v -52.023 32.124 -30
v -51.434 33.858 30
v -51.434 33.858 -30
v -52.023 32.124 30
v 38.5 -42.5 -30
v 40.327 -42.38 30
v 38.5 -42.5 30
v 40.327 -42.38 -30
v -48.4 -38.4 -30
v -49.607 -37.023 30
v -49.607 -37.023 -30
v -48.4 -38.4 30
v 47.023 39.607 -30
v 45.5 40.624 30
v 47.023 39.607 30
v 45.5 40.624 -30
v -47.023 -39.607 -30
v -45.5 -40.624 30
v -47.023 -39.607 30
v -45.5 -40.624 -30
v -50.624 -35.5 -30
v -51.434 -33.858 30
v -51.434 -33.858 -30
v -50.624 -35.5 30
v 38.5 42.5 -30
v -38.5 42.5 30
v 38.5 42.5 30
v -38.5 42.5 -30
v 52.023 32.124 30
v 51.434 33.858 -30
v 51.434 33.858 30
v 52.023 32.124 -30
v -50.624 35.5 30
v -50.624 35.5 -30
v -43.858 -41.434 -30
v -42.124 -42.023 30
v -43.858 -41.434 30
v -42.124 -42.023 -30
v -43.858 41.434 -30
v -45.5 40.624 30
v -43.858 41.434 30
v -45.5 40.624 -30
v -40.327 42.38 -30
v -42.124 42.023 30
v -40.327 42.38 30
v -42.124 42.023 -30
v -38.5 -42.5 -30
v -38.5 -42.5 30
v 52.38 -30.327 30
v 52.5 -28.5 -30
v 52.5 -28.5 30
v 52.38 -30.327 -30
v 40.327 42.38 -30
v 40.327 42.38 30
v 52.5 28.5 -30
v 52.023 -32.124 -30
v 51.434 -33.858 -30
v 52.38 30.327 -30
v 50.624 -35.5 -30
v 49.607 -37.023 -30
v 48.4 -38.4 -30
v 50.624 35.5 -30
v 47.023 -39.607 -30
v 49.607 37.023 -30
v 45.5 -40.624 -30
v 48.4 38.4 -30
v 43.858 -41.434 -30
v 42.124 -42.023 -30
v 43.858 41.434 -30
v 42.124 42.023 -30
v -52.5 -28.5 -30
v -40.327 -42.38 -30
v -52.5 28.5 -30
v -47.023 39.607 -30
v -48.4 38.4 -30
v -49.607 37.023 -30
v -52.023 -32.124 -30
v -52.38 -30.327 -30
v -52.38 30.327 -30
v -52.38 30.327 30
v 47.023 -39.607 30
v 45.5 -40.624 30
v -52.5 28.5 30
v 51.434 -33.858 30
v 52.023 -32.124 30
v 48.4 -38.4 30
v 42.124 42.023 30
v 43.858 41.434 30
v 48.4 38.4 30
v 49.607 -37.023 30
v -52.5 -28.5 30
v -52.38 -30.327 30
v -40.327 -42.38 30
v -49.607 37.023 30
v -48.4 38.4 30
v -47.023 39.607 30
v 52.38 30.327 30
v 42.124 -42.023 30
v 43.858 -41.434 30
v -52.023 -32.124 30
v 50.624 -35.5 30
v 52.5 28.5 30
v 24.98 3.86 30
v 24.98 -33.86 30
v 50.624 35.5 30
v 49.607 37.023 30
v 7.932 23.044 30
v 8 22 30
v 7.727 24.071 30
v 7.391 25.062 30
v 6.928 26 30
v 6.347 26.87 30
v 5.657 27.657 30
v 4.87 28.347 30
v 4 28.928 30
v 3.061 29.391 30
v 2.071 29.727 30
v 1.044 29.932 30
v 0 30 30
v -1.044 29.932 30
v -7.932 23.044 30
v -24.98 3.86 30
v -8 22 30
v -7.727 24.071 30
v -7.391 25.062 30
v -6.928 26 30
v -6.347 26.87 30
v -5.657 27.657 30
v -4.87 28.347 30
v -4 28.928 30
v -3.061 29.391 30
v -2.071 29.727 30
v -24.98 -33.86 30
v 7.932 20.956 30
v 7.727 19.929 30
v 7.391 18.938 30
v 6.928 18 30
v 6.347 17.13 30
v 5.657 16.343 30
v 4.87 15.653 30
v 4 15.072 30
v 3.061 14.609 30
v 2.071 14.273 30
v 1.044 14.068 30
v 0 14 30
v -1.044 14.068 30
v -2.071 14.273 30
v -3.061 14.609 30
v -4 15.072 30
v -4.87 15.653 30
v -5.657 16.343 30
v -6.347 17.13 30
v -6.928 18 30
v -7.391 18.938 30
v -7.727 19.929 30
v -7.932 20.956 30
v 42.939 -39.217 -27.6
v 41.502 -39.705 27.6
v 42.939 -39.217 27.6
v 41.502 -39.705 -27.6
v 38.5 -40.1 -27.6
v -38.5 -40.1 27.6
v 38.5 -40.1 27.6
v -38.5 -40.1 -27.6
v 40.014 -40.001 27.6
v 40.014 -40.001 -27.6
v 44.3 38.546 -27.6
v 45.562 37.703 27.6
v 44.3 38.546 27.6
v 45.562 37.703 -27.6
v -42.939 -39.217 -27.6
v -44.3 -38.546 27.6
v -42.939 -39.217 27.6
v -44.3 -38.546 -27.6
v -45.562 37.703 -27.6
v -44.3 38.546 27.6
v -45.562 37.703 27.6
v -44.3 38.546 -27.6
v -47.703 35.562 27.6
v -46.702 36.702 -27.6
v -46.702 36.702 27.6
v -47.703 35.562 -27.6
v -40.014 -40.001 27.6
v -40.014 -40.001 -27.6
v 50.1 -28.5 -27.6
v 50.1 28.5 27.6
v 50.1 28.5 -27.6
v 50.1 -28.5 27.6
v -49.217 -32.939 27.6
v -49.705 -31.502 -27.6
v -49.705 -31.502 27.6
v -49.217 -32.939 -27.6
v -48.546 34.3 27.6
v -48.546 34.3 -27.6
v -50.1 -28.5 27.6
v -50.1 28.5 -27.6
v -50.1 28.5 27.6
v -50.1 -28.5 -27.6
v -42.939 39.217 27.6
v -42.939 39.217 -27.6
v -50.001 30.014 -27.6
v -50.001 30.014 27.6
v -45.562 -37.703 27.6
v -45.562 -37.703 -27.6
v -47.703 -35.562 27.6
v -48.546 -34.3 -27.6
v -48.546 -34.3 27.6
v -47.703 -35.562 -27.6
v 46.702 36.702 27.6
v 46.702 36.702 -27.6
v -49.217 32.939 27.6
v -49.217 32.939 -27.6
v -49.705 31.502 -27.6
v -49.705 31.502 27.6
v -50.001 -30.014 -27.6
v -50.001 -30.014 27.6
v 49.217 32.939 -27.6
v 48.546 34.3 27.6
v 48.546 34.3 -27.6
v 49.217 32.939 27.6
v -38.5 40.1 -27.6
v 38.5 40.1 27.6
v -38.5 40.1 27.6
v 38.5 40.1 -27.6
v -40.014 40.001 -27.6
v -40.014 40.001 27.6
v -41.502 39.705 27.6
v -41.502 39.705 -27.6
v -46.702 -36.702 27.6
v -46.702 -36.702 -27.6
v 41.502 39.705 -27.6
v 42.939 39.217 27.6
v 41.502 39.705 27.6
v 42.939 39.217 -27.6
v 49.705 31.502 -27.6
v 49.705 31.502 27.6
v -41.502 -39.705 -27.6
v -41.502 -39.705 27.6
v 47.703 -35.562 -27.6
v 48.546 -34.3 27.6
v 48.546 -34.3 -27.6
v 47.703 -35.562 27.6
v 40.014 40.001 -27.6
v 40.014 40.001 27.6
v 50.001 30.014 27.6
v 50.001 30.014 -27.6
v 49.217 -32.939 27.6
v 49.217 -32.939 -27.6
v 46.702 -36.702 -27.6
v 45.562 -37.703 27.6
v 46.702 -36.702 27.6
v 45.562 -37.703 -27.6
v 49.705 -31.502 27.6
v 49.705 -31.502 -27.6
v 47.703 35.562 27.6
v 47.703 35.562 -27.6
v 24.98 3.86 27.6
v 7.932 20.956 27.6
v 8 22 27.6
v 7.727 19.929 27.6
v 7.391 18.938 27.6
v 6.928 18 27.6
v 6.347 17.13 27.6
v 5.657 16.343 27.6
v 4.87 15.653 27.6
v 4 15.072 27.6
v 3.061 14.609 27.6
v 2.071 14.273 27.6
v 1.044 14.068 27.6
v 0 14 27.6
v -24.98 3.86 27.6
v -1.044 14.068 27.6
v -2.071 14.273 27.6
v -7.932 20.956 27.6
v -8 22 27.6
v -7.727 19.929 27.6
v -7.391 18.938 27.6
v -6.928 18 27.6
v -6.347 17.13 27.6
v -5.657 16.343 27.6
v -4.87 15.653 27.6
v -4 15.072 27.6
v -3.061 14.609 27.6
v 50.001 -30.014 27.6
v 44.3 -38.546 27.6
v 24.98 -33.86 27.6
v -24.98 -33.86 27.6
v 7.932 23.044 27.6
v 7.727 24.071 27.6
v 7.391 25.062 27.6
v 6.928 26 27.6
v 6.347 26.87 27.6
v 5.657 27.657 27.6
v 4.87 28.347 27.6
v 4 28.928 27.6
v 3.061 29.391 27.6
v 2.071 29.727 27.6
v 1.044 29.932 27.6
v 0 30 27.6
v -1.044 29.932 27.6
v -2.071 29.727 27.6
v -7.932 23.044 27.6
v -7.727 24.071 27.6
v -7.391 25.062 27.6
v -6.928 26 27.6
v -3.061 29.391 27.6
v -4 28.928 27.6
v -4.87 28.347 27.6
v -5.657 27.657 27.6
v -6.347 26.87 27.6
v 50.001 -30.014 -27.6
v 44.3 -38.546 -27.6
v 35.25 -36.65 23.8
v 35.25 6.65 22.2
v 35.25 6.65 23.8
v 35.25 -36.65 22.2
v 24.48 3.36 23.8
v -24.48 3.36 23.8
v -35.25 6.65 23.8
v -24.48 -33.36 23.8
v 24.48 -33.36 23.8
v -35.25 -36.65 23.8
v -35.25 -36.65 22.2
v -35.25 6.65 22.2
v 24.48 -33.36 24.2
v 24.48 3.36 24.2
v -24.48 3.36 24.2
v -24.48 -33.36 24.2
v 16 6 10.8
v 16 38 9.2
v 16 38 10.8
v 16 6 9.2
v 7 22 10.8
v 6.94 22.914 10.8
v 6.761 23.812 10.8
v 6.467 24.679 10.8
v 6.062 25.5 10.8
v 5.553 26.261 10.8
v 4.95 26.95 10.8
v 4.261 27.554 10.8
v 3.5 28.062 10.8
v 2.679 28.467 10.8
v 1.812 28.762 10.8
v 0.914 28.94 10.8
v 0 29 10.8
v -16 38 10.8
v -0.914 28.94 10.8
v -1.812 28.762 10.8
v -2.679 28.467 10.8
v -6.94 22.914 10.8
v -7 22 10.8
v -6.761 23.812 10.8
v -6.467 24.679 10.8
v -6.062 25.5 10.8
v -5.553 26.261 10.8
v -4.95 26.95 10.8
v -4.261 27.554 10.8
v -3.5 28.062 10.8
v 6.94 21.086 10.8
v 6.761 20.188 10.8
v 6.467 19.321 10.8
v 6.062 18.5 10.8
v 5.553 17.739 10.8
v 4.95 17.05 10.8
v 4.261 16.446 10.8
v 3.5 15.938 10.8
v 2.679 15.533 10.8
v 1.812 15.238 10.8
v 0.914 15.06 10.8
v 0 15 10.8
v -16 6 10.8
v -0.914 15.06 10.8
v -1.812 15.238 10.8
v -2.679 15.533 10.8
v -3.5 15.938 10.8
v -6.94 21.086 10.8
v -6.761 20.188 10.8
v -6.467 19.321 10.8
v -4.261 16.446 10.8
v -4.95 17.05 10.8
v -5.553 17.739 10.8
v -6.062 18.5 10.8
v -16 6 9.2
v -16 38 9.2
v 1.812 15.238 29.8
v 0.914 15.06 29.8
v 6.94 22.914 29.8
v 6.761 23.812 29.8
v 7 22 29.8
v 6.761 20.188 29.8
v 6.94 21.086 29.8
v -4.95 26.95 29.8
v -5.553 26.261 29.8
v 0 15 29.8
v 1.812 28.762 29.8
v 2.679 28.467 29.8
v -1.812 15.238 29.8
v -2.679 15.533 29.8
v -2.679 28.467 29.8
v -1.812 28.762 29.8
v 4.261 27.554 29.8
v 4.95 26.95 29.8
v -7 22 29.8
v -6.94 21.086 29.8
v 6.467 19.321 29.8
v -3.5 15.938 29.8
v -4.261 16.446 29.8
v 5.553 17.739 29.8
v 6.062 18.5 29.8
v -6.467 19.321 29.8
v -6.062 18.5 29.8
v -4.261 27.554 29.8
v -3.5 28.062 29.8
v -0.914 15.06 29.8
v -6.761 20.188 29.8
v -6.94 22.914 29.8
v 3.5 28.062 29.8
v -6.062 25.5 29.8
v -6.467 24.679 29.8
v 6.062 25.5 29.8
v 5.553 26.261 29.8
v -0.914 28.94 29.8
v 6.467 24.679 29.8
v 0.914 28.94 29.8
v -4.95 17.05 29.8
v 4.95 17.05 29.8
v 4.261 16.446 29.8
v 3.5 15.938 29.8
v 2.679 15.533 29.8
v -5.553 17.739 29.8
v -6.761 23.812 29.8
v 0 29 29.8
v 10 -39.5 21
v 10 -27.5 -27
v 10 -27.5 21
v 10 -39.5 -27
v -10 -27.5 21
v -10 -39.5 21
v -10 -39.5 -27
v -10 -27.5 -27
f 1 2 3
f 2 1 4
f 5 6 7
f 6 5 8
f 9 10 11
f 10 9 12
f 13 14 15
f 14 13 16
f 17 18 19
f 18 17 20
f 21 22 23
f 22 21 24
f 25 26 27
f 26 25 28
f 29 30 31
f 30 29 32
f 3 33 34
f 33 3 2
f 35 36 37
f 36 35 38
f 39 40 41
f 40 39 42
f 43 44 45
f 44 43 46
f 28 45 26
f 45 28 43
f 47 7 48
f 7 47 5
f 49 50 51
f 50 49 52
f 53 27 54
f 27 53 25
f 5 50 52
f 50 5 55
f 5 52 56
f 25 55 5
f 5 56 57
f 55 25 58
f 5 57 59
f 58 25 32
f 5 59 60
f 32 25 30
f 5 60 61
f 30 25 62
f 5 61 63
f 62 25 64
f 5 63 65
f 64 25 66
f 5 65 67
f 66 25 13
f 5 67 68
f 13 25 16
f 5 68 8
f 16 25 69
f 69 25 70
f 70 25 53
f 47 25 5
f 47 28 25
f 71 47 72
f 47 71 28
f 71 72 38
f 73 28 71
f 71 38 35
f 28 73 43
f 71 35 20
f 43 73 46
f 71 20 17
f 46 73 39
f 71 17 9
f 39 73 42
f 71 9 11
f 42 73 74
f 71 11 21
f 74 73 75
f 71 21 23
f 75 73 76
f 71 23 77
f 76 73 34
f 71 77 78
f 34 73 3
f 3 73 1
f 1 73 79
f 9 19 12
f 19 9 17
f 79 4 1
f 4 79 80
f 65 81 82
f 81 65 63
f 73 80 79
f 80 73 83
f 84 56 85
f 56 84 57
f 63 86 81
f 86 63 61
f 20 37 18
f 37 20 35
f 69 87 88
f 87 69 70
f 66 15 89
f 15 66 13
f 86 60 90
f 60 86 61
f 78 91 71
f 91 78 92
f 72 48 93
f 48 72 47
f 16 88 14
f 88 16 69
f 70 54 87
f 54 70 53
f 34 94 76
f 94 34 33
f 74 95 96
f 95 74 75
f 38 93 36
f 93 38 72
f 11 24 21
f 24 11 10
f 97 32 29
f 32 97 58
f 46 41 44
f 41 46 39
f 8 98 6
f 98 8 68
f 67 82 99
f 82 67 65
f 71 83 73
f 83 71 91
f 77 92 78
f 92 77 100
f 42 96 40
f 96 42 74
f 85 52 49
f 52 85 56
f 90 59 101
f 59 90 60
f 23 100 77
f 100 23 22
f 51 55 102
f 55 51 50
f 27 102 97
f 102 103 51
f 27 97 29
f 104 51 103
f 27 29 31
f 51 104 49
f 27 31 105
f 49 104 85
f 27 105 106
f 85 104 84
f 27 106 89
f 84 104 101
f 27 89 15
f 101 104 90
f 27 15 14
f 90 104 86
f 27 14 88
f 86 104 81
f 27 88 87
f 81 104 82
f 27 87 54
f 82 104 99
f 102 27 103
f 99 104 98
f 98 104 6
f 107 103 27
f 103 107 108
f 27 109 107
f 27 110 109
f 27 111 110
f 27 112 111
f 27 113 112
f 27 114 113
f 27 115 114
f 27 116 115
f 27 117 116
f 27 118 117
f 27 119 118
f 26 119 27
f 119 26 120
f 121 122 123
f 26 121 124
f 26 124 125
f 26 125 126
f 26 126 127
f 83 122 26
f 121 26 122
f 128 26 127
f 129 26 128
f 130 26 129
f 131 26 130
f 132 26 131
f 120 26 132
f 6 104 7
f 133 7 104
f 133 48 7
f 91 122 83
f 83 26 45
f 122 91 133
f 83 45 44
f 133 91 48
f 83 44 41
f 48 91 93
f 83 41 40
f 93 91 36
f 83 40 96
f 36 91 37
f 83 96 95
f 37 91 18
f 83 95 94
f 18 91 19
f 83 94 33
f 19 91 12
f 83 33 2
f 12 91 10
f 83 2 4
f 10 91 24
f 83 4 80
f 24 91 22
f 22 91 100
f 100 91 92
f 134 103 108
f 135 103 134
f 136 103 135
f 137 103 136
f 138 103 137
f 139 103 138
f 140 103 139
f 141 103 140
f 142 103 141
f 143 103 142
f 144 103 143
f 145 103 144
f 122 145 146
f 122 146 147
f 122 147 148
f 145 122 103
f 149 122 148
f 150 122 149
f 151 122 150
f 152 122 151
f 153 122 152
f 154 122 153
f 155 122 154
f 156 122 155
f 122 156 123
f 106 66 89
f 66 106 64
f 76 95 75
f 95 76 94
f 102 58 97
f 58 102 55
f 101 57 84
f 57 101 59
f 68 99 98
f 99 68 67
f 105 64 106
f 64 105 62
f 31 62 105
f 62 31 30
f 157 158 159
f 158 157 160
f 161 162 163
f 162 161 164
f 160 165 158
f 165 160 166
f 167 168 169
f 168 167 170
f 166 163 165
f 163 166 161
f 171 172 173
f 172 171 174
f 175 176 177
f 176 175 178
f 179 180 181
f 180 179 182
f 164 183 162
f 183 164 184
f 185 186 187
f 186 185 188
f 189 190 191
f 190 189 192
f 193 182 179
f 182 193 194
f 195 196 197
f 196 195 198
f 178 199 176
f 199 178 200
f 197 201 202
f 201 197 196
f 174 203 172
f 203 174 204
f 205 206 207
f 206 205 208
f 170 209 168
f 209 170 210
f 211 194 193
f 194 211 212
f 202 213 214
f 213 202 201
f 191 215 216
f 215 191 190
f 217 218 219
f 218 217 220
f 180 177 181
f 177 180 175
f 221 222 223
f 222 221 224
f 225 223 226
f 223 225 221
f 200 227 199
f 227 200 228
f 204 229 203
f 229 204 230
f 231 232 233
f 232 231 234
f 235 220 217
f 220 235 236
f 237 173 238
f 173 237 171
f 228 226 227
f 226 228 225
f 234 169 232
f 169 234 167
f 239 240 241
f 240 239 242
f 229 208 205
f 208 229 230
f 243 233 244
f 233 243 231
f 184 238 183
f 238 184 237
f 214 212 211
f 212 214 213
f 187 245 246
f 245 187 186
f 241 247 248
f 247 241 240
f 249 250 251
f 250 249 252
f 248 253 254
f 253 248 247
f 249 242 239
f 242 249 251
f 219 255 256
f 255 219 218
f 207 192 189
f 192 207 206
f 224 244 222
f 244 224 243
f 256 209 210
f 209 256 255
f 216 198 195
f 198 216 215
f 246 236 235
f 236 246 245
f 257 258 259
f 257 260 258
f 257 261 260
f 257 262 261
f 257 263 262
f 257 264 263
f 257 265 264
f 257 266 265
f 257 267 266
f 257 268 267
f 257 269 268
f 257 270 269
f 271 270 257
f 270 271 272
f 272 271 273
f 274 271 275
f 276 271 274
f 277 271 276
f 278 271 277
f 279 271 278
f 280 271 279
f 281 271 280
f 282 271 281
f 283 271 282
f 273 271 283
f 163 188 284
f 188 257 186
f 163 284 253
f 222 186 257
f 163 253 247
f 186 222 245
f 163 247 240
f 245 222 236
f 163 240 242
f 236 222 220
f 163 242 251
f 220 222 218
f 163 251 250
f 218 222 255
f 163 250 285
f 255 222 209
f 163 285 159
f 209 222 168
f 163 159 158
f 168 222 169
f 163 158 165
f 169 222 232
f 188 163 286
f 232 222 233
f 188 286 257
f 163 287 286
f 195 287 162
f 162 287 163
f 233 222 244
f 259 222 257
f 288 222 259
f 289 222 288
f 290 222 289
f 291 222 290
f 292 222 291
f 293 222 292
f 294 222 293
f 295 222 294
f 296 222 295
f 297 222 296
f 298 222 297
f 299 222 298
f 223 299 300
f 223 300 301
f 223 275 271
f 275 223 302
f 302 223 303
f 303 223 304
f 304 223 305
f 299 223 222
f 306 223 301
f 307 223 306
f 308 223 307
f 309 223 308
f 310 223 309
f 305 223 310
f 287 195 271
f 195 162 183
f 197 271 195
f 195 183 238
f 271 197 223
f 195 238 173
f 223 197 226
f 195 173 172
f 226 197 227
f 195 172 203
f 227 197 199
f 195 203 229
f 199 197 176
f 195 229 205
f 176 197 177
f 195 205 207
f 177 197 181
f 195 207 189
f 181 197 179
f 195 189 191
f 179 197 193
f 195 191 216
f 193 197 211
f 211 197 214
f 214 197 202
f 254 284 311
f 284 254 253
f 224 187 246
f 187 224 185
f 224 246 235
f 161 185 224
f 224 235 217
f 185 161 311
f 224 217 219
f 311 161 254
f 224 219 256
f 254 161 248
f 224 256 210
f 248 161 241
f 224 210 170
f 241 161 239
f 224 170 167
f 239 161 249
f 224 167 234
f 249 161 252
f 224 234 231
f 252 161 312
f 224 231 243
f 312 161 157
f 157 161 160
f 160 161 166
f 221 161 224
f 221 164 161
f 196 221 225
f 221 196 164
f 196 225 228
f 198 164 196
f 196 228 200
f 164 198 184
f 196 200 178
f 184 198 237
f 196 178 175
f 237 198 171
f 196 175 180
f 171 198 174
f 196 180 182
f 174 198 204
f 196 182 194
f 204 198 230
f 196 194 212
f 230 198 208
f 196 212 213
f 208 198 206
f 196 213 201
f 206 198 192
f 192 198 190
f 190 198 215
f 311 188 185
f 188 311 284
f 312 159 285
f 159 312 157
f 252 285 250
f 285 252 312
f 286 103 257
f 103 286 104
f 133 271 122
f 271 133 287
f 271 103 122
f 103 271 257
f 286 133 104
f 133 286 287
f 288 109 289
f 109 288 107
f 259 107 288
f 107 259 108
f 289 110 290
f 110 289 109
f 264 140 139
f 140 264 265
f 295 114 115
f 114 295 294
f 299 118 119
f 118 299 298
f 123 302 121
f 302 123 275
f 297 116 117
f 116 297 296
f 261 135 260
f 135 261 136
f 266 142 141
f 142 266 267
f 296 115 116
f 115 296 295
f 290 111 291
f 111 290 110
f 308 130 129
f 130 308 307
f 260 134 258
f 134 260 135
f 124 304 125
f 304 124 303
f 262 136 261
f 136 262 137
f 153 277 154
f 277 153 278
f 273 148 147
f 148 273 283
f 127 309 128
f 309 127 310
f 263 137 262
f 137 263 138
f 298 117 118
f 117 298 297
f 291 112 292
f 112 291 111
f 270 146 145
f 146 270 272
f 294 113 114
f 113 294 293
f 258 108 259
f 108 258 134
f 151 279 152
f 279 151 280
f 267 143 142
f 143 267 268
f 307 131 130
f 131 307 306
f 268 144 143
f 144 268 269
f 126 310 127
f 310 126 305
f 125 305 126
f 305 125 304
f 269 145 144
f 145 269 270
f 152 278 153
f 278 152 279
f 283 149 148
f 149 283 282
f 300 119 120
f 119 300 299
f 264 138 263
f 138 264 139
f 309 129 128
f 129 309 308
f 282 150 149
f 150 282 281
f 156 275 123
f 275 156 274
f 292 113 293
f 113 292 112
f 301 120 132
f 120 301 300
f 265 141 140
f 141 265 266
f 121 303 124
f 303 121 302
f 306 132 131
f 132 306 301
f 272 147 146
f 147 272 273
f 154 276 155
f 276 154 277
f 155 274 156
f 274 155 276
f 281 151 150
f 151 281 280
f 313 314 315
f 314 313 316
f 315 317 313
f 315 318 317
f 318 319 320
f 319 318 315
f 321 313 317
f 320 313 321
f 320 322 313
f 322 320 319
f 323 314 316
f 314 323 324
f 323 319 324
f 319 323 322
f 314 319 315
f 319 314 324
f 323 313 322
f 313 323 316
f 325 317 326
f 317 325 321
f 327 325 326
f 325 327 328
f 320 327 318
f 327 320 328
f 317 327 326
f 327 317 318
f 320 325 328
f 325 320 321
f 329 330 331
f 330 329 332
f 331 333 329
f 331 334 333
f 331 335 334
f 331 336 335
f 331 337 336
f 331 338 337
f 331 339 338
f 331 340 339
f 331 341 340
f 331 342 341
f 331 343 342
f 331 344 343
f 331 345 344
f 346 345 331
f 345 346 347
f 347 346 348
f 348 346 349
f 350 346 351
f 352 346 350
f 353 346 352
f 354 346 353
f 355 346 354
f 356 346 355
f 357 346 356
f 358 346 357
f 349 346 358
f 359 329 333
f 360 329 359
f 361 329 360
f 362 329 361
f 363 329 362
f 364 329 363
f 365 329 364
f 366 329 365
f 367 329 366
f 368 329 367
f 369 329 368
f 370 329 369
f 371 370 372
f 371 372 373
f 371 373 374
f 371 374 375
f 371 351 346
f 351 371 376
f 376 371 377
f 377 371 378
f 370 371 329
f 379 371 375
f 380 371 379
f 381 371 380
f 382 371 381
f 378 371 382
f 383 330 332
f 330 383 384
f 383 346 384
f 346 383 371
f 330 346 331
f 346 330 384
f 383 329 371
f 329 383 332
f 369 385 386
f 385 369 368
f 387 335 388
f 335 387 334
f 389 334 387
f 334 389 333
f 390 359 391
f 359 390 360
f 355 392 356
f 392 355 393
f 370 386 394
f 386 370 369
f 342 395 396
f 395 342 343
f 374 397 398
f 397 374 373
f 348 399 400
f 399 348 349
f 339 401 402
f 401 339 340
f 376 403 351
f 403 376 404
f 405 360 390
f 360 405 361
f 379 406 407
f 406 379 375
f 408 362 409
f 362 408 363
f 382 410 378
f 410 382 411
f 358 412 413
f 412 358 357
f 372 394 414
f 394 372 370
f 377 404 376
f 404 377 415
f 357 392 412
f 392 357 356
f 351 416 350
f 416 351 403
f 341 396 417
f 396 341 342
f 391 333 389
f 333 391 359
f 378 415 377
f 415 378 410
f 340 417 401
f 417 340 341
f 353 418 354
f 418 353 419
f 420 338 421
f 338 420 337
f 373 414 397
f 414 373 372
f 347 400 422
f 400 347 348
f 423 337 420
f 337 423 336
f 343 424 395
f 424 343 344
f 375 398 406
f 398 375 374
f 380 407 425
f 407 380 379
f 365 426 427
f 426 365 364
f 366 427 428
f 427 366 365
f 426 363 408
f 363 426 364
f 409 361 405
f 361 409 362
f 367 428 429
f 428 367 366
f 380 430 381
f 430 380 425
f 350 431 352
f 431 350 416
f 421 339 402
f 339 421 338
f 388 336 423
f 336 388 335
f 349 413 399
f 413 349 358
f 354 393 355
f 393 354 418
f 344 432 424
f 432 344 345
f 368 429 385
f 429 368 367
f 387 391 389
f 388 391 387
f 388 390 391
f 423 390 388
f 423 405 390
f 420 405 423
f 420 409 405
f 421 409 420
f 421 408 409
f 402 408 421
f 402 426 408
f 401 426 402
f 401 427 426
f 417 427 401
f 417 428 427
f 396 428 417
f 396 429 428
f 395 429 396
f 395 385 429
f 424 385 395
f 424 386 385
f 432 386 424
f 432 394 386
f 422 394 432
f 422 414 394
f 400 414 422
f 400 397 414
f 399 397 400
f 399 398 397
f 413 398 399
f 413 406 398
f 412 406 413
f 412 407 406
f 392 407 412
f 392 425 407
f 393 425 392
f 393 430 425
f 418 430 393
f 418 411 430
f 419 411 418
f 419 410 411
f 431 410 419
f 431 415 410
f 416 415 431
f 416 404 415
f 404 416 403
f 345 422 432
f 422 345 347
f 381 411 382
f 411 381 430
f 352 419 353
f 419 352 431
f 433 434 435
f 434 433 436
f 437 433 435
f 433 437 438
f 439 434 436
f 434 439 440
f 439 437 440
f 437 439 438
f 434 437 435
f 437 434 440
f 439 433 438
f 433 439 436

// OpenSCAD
// Robot Companion - head layout / envelope feasibility model v0.1
// Dimensions in mm. NOT a manufacturing-ready shell.
// Reference dimensions: Waveshare LCD 2.4in 70.5x43.3; RPi Camera (B) 32x32.
// Unverified proxies: PCB thickness, active-area placement, lens offsets/length,
// fastener locations, connector envelopes, cable bend radius and servo geometry.
$fn = 48;
head_w = 105;
head_h = 85;
head_d = 60;
corner_r = 14;
wall = 2.4;
lcd_w = 70.5;
lcd_h = 43.3;
lcd_thick = 1.6; // placeholder, measure actual PCB
lcd_active_w = 48.96;
lcd_active_h = 36.72;
lcd_y = -15;
lcd_z = 23;
cam_w = 32;
cam_h = 32;
cam_thick = 1.6; // placeholder
cam_y = 22;
cam_z = 10;
lens_d = 14; // NOT measured: design allowance only
lens_to_front = 19; // NOT measured: proxy, actual lens geometry is required
front_z = head_d/2;
show_shell = true;
show_components = true;
show_clearance = true;

module rounded_2d(w,h,r) {
    offset(r=r) square([w-2*r,h-2*r],center=true);
}
module rounded_box(w,h,d,r) {
    linear_extrude(height=d,center=true) rounded_2d(w,h,r);
}
module head_shell() {
    // Representative empty shell to visualize volumes, not printable geometry.
    difference() {
        rounded_box(head_w,head_h,head_d,corner_r);
        rounded_box(head_w-2*wall,head_h-2*wall,head_d-2*wall,corner_r-wall);
        // Front LCD viewport, size based on *active area* only. Alignment TBD.
        translate([0,lcd_y,front_z-wall/2])
            cube([lcd_active_w+1,lcd_active_h+1,wall+3],center=true);
        // Camera lens clearance (diameter provisional).
        translate([0,cam_y,front_z-wall/2])
            cylinder(h=wall+3,d=lens_d+2,center=true);
    }
}
module components() {
    // Front surface is +Z, vertical coordinate +Y.
    color([0.10,0.50,0.25])
        translate([0,lcd_y,lcd_z])
            cube([lcd_w,lcd_h,lcd_thick],center=true);
    color([0.04,0.07,0.11])
        translate([0,lcd_y,lcd_z+lcd_thick/2+0.2])
            cube([lcd_active_w,lcd_active_h,0.4],center=true);
    color([0.18,0.42,0.75])
        translate([0,cam_y,cam_z])
            cube([cam_w,cam_h,cam_thick],center=true);
    color([0.10,0.12,0.15])
        translate([0,cam_y,cam_z+cam_thick/2])
            cylinder(h=lens_to_front,d=lens_d);
}
if (show_shell) color([0.8,0.82,0.84],0.28) head_shell();
if (show_components) components();
// Debug volumes: optional cable exit / neck keepout (not a designed joint)
if (show_clearance) {
    color([1,0.4,0.1],0.25)
    translate([0,-head_h/2+9,-3]) cube([20,12,head_d-12],center=true);
}
